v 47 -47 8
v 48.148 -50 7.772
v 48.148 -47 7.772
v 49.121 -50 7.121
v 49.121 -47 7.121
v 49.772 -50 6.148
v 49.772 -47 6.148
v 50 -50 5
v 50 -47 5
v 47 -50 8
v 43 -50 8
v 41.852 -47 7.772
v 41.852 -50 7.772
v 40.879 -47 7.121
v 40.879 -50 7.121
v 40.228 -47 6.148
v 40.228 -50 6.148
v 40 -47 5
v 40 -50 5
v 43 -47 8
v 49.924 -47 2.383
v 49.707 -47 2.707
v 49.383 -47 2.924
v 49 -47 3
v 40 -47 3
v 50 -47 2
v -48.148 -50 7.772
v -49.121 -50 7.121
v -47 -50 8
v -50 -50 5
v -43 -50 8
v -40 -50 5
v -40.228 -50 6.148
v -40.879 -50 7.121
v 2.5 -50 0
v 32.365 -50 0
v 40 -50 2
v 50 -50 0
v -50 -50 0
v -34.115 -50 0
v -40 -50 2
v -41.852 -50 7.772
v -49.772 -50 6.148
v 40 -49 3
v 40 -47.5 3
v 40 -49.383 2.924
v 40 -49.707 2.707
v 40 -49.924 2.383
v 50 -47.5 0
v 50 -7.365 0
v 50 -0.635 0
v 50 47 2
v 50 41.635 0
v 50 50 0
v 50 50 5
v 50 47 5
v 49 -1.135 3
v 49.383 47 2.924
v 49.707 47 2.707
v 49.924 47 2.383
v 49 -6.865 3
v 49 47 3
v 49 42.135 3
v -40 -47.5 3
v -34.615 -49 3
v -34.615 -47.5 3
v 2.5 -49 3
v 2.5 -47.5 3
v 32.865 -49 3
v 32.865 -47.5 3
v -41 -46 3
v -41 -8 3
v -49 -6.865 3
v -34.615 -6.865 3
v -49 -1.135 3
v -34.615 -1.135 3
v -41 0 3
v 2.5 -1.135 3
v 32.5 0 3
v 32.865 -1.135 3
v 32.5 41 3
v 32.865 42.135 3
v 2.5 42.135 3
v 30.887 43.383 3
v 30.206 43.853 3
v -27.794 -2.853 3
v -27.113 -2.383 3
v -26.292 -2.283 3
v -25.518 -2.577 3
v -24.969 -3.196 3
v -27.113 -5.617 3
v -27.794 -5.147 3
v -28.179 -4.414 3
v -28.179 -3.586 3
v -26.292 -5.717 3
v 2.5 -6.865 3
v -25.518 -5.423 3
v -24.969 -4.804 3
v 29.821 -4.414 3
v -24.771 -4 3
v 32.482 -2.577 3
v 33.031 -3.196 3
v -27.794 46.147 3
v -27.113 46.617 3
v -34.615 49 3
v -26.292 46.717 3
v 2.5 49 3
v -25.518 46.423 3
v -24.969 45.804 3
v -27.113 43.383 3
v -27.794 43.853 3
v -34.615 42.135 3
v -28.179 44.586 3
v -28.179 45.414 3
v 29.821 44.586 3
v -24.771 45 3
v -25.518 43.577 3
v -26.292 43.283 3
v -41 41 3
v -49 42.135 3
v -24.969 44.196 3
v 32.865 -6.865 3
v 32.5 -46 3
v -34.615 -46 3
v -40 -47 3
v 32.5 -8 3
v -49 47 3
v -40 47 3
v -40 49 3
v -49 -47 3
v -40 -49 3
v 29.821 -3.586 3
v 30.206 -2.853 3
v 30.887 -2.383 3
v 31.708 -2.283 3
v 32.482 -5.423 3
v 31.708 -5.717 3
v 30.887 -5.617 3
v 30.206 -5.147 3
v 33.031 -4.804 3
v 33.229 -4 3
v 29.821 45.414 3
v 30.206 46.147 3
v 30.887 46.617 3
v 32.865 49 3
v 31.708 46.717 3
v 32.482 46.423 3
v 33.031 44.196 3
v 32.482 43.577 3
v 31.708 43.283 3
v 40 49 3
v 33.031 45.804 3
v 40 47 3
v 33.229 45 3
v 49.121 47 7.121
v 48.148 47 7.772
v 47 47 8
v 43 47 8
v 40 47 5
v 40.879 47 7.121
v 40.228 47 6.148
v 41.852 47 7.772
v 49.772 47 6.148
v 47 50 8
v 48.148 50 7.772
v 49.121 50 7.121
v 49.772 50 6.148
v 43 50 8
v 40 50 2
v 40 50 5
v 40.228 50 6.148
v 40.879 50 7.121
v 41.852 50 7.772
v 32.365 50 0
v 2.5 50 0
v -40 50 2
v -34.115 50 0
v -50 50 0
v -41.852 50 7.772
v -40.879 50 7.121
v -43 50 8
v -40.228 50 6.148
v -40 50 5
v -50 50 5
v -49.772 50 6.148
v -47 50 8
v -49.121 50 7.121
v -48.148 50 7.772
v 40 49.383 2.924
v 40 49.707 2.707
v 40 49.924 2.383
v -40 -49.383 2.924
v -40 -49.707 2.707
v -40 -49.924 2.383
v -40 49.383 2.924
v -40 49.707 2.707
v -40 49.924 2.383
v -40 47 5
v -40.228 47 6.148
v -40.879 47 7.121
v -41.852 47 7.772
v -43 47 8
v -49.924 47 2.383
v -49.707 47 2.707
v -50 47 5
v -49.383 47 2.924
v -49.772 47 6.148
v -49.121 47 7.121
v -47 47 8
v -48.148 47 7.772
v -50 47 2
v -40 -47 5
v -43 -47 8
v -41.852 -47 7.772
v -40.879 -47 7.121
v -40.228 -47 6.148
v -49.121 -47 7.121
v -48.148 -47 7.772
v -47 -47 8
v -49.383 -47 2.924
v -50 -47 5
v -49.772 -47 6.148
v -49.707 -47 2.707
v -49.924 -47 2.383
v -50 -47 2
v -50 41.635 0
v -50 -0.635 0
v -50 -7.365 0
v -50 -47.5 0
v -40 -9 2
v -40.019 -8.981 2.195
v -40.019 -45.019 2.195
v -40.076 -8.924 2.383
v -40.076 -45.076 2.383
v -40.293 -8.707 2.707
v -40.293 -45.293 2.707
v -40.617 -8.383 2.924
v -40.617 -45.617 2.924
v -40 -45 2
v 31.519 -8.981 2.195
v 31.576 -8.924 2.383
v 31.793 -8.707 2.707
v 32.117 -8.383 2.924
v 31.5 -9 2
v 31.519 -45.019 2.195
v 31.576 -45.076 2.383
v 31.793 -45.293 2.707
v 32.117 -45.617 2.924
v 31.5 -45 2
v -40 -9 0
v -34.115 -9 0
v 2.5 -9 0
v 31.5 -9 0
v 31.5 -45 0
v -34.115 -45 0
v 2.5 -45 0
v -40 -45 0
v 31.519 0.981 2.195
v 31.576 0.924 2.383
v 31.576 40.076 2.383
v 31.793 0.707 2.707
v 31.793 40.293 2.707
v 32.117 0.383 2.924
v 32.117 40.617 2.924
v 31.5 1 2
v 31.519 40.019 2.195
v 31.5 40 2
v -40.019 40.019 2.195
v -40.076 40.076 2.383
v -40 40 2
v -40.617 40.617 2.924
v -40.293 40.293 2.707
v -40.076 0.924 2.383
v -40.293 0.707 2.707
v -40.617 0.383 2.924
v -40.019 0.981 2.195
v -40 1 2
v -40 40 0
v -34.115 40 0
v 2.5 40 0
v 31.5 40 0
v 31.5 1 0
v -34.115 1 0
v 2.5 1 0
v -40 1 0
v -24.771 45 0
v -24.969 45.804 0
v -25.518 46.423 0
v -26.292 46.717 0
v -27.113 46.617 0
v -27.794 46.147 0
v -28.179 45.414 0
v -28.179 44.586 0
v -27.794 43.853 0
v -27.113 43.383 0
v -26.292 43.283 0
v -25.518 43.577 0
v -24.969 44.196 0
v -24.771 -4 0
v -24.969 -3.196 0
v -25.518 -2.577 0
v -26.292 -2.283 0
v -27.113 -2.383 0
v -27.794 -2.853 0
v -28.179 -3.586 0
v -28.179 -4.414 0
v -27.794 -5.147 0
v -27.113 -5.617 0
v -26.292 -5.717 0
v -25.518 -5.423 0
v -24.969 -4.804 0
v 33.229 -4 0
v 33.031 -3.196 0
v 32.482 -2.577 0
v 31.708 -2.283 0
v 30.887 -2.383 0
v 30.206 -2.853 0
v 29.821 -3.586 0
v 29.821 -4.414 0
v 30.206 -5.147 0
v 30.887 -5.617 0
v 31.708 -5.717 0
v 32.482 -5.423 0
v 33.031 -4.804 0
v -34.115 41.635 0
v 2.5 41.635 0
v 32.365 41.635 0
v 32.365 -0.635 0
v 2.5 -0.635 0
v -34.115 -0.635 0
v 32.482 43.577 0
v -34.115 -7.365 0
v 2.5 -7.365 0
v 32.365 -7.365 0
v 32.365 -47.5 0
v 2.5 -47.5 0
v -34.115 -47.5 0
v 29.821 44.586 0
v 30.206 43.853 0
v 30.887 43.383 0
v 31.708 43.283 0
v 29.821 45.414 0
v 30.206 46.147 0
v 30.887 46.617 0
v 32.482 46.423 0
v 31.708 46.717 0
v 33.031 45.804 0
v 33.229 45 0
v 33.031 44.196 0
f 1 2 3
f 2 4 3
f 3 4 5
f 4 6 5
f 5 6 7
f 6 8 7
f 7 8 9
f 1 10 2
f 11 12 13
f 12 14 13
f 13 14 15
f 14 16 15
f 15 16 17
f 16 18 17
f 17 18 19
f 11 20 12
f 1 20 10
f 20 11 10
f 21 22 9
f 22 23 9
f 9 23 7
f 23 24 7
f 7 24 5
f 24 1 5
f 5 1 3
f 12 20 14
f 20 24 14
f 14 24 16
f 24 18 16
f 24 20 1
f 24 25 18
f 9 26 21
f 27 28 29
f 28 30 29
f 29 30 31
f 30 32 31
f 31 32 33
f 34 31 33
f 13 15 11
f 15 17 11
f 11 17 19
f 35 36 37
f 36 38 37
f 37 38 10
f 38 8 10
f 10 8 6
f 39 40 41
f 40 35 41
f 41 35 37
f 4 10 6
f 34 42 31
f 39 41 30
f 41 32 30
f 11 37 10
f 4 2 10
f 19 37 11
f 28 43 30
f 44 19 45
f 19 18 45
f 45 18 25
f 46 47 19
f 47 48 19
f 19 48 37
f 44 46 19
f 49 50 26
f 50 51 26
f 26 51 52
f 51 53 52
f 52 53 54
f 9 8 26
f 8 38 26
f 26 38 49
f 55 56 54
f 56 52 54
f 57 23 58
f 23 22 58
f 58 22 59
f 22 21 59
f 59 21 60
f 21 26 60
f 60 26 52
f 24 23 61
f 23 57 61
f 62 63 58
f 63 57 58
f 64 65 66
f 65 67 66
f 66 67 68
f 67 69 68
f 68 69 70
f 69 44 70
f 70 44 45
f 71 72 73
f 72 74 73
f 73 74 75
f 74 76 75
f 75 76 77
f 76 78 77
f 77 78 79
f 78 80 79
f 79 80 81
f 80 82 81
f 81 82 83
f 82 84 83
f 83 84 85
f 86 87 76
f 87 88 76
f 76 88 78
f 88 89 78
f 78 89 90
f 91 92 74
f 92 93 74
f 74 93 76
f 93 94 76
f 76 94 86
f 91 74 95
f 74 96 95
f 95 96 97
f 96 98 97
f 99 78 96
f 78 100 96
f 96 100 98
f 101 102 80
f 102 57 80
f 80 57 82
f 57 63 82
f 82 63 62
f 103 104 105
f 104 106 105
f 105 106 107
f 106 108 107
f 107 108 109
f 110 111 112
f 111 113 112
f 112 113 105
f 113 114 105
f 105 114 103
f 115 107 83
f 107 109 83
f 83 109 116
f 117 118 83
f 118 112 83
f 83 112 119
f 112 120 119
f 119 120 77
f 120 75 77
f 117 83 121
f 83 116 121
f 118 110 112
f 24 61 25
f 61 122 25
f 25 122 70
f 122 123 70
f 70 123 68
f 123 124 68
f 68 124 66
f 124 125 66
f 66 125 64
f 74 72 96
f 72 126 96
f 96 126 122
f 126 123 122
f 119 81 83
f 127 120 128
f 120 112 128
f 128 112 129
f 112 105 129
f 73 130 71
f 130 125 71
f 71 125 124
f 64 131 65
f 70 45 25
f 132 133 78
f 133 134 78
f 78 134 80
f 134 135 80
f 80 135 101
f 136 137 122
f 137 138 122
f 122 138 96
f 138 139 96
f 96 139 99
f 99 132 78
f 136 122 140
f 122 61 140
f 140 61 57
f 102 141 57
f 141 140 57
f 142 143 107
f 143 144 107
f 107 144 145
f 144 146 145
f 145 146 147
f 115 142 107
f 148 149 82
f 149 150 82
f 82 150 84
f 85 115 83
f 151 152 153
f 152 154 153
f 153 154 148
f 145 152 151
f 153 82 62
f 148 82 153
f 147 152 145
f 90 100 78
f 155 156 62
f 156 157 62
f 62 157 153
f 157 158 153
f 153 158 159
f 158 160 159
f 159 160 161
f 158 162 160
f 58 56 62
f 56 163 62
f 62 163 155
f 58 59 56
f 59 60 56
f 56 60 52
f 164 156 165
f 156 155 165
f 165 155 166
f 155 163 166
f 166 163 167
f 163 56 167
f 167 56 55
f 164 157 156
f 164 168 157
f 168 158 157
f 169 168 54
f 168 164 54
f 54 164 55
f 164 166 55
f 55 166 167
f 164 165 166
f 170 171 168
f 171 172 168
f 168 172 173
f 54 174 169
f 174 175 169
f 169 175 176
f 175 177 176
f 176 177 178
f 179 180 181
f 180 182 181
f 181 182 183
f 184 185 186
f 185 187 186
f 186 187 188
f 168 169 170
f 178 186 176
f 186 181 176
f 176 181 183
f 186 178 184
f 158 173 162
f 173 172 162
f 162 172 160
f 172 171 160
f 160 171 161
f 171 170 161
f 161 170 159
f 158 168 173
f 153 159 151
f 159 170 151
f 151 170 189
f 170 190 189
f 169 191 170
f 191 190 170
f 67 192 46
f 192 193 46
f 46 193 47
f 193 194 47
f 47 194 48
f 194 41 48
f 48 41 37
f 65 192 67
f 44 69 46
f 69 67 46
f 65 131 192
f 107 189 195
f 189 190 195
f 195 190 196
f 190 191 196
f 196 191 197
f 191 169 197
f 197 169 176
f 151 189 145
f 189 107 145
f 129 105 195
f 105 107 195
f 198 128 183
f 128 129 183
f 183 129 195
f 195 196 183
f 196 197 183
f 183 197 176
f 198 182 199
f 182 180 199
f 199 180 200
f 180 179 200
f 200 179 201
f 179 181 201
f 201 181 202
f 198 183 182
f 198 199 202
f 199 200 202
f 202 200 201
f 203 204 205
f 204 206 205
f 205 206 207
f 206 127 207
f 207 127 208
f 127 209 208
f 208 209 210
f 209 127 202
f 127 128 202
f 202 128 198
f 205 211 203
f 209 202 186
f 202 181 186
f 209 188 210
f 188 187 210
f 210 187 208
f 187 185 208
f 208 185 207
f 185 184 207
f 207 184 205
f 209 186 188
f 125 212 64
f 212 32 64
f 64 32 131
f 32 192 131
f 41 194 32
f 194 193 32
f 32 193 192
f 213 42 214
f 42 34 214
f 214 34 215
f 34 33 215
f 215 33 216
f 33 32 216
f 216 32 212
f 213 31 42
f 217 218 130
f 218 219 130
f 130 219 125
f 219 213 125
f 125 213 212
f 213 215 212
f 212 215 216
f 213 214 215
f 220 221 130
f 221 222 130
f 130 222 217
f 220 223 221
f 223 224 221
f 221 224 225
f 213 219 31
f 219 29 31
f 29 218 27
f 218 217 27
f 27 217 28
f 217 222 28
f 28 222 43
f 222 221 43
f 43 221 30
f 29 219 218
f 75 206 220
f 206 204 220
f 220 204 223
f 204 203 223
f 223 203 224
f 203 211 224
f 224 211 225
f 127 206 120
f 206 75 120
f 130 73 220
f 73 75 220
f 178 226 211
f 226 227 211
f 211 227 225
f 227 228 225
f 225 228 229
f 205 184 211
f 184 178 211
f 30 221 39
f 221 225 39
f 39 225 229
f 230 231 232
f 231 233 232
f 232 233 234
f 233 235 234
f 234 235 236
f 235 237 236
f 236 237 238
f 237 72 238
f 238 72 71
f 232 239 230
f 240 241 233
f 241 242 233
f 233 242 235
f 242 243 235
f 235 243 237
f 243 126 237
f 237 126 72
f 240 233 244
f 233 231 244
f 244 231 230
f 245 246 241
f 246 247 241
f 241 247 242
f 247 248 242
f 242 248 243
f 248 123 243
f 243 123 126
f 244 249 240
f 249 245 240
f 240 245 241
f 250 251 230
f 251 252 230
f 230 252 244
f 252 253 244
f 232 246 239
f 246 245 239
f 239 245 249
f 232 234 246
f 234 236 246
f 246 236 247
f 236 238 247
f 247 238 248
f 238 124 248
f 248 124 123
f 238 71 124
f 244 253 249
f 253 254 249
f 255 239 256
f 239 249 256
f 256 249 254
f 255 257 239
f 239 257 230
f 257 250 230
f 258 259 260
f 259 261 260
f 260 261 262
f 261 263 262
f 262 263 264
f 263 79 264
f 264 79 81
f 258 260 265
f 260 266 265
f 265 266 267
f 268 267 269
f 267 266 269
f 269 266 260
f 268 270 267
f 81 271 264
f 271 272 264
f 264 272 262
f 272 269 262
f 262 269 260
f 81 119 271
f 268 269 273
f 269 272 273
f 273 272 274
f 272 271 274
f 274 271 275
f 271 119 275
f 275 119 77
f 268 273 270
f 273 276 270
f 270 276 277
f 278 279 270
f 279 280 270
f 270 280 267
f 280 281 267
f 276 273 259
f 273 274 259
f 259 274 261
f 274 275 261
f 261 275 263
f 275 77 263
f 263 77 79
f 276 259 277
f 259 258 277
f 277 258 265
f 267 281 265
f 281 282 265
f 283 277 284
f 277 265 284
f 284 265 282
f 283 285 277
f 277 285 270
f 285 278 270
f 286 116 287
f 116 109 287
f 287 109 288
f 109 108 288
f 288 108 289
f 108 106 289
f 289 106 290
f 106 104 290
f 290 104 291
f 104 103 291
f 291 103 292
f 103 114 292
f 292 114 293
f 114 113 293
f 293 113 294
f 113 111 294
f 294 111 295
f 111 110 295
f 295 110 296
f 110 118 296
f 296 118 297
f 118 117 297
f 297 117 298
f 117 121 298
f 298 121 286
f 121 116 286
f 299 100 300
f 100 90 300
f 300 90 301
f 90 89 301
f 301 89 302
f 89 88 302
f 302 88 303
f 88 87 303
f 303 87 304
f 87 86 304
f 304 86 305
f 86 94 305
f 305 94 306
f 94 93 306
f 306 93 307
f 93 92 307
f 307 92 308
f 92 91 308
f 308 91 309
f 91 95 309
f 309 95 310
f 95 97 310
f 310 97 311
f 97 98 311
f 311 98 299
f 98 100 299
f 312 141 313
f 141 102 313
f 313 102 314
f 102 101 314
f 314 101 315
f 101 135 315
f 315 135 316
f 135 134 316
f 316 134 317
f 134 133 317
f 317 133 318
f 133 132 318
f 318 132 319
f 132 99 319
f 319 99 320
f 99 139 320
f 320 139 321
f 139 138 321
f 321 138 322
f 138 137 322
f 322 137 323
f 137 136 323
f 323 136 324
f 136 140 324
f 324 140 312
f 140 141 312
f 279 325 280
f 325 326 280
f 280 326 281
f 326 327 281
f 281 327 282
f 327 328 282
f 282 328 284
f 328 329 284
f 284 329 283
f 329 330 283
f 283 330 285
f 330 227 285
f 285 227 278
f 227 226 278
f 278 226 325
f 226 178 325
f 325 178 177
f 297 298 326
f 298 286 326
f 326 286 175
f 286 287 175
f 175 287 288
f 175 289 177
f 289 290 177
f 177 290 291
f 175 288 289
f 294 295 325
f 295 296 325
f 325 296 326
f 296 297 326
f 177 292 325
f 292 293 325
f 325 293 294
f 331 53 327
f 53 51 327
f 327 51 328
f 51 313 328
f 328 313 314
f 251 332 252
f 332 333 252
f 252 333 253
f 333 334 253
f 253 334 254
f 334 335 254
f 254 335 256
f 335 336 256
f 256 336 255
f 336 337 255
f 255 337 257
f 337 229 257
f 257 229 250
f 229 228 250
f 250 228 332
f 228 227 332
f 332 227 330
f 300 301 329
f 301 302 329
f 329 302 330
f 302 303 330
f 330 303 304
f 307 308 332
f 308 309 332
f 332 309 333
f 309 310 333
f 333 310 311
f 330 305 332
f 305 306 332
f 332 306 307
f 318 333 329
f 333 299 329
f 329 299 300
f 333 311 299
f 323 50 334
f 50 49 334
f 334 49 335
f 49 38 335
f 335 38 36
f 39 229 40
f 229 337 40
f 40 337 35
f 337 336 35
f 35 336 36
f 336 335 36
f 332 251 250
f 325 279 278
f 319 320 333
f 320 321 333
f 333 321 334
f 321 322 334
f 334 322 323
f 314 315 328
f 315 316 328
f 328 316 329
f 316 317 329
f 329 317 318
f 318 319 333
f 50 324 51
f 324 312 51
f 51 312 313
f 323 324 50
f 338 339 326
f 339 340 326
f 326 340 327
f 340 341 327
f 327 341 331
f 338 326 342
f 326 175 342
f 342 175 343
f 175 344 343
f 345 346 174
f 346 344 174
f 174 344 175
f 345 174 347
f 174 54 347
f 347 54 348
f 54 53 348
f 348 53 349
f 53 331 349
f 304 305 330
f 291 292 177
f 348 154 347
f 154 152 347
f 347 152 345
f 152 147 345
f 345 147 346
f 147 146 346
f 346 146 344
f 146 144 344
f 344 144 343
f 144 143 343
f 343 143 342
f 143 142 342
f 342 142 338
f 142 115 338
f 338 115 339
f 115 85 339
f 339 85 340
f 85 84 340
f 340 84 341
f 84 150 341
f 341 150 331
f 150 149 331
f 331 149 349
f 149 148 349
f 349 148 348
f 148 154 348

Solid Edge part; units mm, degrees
sketch "Sketch1" plane through (0, 0, 0) normal (0, 0, 1) x (1, 0, 0)
  line L0 (-50, -50) -> (50, -50)
  line L1 (50, -50) -> (50, 50)
  line L2 (50, 50) -> (-50, 50)
  line L3 (-50, 50) -> (-50, -50)
extrude "Protrusion1" add sketch "Sketch1" along normal blind 3
sketch "Sketch2" plane through (0, 0, 3) normal (0, 0, 1) x (1, 0, 0)
  circle A0 centre (31.5, 45) radius 1.7293
  circle A1 centre (31.5, -4) radius 1.7293
  circle A2 centre (-26.5, -4) radius 1.7293
  line L0 (-40, 1) -> (31.5, 1)
  line L1 (31.5, 1) -> (31.5, 40)
  line L2 (31.5, 40) -> (-40, 40)
  line L3 (-40, 40) -> (-40, 1)
  circle A3 centre (-26.5, 45) radius 1.7293
  line L4 (-40, -45) -> (31.5, -45)
  line L5 (31.5, -45) -> (31.5, -9)
  line L6 (31.5, -9) -> (-40, -9)
  line L7 (-40, -9) -> (-40, -45)
  dimension "D1" = 5
  dimension "D2" = 58
  dimension "D3" = 49
  dimension "D4" = 81.5
  dimension "D5" = 5
  dimension "D6" = 5
  dimension "D7" = 81.5
  dimension "D8" = 10
  dimension "D9" = 10
  dimension "D10" = 81.5
  dimension "D11" = 5
  dimension "D12" = 5
extrude "ExtrudedCutout_1" cut sketch "Sketch2" against normal blind 3
sketch "Sketch3" plane through (0, 0, 3) normal (0, 0, 1) x (0, 1, 0)
  line L0 (50, 50) -> (50, 40)
  line L1 (47, 40) -> (50, 40)
  line L2 (47, 50) -> (47, 40)
  line L3 (50, 50) -> (47, 50)
  line L4 (50, -40) -> (47, -40)
  line L5 (47, -40) -> (47, -50)
  line L6 (47, -50) -> (50, -50)
  line L7 (50, -50) -> (50, -40)
  line L8 (-50, -50) -> (-47, -50)
  line L9 (-47, -50) -> (-47, -40)
  line L10 (-47, -40) -> (-50, -40)
  line L11 (-50, -40) -> (-50, -50)
  line L12 (-50, 40) -> (-47, 40)
  line L13 (-47, 40) -> (-47, 50)
  line L14 (-47, 50) -> (-50, 50)
  line L15 (-50, 50) -> (-50, 40)
extrude "ExtrudedProtrusion_2" add sketch "Sketch3" along normal blind 5
fillet "Round_1" radius 3 8 edges at (-40, 48.5, 8) (-50, 48.5, 8) (50, 48.5, 8) (40, 48.5, 8) (50, -48.5, 8) (40, -48.5, 8) (-40, -48.5, 8) (-50, -48.5, 8)
fillet "Round_2" radius 1 12 edges at (-40, 20.5, 3) (-4.25, 40, 3) (31.5, 20.5, 3) (-4.25, 1, 3) (-40, -27, 3) (-4.25, -9, 3) (50, 0, 3) (0, -50, 3) (-4.25, -45, 3) (31.5, -27, 3) (0, 50, 3) (-50, 0, 3)
